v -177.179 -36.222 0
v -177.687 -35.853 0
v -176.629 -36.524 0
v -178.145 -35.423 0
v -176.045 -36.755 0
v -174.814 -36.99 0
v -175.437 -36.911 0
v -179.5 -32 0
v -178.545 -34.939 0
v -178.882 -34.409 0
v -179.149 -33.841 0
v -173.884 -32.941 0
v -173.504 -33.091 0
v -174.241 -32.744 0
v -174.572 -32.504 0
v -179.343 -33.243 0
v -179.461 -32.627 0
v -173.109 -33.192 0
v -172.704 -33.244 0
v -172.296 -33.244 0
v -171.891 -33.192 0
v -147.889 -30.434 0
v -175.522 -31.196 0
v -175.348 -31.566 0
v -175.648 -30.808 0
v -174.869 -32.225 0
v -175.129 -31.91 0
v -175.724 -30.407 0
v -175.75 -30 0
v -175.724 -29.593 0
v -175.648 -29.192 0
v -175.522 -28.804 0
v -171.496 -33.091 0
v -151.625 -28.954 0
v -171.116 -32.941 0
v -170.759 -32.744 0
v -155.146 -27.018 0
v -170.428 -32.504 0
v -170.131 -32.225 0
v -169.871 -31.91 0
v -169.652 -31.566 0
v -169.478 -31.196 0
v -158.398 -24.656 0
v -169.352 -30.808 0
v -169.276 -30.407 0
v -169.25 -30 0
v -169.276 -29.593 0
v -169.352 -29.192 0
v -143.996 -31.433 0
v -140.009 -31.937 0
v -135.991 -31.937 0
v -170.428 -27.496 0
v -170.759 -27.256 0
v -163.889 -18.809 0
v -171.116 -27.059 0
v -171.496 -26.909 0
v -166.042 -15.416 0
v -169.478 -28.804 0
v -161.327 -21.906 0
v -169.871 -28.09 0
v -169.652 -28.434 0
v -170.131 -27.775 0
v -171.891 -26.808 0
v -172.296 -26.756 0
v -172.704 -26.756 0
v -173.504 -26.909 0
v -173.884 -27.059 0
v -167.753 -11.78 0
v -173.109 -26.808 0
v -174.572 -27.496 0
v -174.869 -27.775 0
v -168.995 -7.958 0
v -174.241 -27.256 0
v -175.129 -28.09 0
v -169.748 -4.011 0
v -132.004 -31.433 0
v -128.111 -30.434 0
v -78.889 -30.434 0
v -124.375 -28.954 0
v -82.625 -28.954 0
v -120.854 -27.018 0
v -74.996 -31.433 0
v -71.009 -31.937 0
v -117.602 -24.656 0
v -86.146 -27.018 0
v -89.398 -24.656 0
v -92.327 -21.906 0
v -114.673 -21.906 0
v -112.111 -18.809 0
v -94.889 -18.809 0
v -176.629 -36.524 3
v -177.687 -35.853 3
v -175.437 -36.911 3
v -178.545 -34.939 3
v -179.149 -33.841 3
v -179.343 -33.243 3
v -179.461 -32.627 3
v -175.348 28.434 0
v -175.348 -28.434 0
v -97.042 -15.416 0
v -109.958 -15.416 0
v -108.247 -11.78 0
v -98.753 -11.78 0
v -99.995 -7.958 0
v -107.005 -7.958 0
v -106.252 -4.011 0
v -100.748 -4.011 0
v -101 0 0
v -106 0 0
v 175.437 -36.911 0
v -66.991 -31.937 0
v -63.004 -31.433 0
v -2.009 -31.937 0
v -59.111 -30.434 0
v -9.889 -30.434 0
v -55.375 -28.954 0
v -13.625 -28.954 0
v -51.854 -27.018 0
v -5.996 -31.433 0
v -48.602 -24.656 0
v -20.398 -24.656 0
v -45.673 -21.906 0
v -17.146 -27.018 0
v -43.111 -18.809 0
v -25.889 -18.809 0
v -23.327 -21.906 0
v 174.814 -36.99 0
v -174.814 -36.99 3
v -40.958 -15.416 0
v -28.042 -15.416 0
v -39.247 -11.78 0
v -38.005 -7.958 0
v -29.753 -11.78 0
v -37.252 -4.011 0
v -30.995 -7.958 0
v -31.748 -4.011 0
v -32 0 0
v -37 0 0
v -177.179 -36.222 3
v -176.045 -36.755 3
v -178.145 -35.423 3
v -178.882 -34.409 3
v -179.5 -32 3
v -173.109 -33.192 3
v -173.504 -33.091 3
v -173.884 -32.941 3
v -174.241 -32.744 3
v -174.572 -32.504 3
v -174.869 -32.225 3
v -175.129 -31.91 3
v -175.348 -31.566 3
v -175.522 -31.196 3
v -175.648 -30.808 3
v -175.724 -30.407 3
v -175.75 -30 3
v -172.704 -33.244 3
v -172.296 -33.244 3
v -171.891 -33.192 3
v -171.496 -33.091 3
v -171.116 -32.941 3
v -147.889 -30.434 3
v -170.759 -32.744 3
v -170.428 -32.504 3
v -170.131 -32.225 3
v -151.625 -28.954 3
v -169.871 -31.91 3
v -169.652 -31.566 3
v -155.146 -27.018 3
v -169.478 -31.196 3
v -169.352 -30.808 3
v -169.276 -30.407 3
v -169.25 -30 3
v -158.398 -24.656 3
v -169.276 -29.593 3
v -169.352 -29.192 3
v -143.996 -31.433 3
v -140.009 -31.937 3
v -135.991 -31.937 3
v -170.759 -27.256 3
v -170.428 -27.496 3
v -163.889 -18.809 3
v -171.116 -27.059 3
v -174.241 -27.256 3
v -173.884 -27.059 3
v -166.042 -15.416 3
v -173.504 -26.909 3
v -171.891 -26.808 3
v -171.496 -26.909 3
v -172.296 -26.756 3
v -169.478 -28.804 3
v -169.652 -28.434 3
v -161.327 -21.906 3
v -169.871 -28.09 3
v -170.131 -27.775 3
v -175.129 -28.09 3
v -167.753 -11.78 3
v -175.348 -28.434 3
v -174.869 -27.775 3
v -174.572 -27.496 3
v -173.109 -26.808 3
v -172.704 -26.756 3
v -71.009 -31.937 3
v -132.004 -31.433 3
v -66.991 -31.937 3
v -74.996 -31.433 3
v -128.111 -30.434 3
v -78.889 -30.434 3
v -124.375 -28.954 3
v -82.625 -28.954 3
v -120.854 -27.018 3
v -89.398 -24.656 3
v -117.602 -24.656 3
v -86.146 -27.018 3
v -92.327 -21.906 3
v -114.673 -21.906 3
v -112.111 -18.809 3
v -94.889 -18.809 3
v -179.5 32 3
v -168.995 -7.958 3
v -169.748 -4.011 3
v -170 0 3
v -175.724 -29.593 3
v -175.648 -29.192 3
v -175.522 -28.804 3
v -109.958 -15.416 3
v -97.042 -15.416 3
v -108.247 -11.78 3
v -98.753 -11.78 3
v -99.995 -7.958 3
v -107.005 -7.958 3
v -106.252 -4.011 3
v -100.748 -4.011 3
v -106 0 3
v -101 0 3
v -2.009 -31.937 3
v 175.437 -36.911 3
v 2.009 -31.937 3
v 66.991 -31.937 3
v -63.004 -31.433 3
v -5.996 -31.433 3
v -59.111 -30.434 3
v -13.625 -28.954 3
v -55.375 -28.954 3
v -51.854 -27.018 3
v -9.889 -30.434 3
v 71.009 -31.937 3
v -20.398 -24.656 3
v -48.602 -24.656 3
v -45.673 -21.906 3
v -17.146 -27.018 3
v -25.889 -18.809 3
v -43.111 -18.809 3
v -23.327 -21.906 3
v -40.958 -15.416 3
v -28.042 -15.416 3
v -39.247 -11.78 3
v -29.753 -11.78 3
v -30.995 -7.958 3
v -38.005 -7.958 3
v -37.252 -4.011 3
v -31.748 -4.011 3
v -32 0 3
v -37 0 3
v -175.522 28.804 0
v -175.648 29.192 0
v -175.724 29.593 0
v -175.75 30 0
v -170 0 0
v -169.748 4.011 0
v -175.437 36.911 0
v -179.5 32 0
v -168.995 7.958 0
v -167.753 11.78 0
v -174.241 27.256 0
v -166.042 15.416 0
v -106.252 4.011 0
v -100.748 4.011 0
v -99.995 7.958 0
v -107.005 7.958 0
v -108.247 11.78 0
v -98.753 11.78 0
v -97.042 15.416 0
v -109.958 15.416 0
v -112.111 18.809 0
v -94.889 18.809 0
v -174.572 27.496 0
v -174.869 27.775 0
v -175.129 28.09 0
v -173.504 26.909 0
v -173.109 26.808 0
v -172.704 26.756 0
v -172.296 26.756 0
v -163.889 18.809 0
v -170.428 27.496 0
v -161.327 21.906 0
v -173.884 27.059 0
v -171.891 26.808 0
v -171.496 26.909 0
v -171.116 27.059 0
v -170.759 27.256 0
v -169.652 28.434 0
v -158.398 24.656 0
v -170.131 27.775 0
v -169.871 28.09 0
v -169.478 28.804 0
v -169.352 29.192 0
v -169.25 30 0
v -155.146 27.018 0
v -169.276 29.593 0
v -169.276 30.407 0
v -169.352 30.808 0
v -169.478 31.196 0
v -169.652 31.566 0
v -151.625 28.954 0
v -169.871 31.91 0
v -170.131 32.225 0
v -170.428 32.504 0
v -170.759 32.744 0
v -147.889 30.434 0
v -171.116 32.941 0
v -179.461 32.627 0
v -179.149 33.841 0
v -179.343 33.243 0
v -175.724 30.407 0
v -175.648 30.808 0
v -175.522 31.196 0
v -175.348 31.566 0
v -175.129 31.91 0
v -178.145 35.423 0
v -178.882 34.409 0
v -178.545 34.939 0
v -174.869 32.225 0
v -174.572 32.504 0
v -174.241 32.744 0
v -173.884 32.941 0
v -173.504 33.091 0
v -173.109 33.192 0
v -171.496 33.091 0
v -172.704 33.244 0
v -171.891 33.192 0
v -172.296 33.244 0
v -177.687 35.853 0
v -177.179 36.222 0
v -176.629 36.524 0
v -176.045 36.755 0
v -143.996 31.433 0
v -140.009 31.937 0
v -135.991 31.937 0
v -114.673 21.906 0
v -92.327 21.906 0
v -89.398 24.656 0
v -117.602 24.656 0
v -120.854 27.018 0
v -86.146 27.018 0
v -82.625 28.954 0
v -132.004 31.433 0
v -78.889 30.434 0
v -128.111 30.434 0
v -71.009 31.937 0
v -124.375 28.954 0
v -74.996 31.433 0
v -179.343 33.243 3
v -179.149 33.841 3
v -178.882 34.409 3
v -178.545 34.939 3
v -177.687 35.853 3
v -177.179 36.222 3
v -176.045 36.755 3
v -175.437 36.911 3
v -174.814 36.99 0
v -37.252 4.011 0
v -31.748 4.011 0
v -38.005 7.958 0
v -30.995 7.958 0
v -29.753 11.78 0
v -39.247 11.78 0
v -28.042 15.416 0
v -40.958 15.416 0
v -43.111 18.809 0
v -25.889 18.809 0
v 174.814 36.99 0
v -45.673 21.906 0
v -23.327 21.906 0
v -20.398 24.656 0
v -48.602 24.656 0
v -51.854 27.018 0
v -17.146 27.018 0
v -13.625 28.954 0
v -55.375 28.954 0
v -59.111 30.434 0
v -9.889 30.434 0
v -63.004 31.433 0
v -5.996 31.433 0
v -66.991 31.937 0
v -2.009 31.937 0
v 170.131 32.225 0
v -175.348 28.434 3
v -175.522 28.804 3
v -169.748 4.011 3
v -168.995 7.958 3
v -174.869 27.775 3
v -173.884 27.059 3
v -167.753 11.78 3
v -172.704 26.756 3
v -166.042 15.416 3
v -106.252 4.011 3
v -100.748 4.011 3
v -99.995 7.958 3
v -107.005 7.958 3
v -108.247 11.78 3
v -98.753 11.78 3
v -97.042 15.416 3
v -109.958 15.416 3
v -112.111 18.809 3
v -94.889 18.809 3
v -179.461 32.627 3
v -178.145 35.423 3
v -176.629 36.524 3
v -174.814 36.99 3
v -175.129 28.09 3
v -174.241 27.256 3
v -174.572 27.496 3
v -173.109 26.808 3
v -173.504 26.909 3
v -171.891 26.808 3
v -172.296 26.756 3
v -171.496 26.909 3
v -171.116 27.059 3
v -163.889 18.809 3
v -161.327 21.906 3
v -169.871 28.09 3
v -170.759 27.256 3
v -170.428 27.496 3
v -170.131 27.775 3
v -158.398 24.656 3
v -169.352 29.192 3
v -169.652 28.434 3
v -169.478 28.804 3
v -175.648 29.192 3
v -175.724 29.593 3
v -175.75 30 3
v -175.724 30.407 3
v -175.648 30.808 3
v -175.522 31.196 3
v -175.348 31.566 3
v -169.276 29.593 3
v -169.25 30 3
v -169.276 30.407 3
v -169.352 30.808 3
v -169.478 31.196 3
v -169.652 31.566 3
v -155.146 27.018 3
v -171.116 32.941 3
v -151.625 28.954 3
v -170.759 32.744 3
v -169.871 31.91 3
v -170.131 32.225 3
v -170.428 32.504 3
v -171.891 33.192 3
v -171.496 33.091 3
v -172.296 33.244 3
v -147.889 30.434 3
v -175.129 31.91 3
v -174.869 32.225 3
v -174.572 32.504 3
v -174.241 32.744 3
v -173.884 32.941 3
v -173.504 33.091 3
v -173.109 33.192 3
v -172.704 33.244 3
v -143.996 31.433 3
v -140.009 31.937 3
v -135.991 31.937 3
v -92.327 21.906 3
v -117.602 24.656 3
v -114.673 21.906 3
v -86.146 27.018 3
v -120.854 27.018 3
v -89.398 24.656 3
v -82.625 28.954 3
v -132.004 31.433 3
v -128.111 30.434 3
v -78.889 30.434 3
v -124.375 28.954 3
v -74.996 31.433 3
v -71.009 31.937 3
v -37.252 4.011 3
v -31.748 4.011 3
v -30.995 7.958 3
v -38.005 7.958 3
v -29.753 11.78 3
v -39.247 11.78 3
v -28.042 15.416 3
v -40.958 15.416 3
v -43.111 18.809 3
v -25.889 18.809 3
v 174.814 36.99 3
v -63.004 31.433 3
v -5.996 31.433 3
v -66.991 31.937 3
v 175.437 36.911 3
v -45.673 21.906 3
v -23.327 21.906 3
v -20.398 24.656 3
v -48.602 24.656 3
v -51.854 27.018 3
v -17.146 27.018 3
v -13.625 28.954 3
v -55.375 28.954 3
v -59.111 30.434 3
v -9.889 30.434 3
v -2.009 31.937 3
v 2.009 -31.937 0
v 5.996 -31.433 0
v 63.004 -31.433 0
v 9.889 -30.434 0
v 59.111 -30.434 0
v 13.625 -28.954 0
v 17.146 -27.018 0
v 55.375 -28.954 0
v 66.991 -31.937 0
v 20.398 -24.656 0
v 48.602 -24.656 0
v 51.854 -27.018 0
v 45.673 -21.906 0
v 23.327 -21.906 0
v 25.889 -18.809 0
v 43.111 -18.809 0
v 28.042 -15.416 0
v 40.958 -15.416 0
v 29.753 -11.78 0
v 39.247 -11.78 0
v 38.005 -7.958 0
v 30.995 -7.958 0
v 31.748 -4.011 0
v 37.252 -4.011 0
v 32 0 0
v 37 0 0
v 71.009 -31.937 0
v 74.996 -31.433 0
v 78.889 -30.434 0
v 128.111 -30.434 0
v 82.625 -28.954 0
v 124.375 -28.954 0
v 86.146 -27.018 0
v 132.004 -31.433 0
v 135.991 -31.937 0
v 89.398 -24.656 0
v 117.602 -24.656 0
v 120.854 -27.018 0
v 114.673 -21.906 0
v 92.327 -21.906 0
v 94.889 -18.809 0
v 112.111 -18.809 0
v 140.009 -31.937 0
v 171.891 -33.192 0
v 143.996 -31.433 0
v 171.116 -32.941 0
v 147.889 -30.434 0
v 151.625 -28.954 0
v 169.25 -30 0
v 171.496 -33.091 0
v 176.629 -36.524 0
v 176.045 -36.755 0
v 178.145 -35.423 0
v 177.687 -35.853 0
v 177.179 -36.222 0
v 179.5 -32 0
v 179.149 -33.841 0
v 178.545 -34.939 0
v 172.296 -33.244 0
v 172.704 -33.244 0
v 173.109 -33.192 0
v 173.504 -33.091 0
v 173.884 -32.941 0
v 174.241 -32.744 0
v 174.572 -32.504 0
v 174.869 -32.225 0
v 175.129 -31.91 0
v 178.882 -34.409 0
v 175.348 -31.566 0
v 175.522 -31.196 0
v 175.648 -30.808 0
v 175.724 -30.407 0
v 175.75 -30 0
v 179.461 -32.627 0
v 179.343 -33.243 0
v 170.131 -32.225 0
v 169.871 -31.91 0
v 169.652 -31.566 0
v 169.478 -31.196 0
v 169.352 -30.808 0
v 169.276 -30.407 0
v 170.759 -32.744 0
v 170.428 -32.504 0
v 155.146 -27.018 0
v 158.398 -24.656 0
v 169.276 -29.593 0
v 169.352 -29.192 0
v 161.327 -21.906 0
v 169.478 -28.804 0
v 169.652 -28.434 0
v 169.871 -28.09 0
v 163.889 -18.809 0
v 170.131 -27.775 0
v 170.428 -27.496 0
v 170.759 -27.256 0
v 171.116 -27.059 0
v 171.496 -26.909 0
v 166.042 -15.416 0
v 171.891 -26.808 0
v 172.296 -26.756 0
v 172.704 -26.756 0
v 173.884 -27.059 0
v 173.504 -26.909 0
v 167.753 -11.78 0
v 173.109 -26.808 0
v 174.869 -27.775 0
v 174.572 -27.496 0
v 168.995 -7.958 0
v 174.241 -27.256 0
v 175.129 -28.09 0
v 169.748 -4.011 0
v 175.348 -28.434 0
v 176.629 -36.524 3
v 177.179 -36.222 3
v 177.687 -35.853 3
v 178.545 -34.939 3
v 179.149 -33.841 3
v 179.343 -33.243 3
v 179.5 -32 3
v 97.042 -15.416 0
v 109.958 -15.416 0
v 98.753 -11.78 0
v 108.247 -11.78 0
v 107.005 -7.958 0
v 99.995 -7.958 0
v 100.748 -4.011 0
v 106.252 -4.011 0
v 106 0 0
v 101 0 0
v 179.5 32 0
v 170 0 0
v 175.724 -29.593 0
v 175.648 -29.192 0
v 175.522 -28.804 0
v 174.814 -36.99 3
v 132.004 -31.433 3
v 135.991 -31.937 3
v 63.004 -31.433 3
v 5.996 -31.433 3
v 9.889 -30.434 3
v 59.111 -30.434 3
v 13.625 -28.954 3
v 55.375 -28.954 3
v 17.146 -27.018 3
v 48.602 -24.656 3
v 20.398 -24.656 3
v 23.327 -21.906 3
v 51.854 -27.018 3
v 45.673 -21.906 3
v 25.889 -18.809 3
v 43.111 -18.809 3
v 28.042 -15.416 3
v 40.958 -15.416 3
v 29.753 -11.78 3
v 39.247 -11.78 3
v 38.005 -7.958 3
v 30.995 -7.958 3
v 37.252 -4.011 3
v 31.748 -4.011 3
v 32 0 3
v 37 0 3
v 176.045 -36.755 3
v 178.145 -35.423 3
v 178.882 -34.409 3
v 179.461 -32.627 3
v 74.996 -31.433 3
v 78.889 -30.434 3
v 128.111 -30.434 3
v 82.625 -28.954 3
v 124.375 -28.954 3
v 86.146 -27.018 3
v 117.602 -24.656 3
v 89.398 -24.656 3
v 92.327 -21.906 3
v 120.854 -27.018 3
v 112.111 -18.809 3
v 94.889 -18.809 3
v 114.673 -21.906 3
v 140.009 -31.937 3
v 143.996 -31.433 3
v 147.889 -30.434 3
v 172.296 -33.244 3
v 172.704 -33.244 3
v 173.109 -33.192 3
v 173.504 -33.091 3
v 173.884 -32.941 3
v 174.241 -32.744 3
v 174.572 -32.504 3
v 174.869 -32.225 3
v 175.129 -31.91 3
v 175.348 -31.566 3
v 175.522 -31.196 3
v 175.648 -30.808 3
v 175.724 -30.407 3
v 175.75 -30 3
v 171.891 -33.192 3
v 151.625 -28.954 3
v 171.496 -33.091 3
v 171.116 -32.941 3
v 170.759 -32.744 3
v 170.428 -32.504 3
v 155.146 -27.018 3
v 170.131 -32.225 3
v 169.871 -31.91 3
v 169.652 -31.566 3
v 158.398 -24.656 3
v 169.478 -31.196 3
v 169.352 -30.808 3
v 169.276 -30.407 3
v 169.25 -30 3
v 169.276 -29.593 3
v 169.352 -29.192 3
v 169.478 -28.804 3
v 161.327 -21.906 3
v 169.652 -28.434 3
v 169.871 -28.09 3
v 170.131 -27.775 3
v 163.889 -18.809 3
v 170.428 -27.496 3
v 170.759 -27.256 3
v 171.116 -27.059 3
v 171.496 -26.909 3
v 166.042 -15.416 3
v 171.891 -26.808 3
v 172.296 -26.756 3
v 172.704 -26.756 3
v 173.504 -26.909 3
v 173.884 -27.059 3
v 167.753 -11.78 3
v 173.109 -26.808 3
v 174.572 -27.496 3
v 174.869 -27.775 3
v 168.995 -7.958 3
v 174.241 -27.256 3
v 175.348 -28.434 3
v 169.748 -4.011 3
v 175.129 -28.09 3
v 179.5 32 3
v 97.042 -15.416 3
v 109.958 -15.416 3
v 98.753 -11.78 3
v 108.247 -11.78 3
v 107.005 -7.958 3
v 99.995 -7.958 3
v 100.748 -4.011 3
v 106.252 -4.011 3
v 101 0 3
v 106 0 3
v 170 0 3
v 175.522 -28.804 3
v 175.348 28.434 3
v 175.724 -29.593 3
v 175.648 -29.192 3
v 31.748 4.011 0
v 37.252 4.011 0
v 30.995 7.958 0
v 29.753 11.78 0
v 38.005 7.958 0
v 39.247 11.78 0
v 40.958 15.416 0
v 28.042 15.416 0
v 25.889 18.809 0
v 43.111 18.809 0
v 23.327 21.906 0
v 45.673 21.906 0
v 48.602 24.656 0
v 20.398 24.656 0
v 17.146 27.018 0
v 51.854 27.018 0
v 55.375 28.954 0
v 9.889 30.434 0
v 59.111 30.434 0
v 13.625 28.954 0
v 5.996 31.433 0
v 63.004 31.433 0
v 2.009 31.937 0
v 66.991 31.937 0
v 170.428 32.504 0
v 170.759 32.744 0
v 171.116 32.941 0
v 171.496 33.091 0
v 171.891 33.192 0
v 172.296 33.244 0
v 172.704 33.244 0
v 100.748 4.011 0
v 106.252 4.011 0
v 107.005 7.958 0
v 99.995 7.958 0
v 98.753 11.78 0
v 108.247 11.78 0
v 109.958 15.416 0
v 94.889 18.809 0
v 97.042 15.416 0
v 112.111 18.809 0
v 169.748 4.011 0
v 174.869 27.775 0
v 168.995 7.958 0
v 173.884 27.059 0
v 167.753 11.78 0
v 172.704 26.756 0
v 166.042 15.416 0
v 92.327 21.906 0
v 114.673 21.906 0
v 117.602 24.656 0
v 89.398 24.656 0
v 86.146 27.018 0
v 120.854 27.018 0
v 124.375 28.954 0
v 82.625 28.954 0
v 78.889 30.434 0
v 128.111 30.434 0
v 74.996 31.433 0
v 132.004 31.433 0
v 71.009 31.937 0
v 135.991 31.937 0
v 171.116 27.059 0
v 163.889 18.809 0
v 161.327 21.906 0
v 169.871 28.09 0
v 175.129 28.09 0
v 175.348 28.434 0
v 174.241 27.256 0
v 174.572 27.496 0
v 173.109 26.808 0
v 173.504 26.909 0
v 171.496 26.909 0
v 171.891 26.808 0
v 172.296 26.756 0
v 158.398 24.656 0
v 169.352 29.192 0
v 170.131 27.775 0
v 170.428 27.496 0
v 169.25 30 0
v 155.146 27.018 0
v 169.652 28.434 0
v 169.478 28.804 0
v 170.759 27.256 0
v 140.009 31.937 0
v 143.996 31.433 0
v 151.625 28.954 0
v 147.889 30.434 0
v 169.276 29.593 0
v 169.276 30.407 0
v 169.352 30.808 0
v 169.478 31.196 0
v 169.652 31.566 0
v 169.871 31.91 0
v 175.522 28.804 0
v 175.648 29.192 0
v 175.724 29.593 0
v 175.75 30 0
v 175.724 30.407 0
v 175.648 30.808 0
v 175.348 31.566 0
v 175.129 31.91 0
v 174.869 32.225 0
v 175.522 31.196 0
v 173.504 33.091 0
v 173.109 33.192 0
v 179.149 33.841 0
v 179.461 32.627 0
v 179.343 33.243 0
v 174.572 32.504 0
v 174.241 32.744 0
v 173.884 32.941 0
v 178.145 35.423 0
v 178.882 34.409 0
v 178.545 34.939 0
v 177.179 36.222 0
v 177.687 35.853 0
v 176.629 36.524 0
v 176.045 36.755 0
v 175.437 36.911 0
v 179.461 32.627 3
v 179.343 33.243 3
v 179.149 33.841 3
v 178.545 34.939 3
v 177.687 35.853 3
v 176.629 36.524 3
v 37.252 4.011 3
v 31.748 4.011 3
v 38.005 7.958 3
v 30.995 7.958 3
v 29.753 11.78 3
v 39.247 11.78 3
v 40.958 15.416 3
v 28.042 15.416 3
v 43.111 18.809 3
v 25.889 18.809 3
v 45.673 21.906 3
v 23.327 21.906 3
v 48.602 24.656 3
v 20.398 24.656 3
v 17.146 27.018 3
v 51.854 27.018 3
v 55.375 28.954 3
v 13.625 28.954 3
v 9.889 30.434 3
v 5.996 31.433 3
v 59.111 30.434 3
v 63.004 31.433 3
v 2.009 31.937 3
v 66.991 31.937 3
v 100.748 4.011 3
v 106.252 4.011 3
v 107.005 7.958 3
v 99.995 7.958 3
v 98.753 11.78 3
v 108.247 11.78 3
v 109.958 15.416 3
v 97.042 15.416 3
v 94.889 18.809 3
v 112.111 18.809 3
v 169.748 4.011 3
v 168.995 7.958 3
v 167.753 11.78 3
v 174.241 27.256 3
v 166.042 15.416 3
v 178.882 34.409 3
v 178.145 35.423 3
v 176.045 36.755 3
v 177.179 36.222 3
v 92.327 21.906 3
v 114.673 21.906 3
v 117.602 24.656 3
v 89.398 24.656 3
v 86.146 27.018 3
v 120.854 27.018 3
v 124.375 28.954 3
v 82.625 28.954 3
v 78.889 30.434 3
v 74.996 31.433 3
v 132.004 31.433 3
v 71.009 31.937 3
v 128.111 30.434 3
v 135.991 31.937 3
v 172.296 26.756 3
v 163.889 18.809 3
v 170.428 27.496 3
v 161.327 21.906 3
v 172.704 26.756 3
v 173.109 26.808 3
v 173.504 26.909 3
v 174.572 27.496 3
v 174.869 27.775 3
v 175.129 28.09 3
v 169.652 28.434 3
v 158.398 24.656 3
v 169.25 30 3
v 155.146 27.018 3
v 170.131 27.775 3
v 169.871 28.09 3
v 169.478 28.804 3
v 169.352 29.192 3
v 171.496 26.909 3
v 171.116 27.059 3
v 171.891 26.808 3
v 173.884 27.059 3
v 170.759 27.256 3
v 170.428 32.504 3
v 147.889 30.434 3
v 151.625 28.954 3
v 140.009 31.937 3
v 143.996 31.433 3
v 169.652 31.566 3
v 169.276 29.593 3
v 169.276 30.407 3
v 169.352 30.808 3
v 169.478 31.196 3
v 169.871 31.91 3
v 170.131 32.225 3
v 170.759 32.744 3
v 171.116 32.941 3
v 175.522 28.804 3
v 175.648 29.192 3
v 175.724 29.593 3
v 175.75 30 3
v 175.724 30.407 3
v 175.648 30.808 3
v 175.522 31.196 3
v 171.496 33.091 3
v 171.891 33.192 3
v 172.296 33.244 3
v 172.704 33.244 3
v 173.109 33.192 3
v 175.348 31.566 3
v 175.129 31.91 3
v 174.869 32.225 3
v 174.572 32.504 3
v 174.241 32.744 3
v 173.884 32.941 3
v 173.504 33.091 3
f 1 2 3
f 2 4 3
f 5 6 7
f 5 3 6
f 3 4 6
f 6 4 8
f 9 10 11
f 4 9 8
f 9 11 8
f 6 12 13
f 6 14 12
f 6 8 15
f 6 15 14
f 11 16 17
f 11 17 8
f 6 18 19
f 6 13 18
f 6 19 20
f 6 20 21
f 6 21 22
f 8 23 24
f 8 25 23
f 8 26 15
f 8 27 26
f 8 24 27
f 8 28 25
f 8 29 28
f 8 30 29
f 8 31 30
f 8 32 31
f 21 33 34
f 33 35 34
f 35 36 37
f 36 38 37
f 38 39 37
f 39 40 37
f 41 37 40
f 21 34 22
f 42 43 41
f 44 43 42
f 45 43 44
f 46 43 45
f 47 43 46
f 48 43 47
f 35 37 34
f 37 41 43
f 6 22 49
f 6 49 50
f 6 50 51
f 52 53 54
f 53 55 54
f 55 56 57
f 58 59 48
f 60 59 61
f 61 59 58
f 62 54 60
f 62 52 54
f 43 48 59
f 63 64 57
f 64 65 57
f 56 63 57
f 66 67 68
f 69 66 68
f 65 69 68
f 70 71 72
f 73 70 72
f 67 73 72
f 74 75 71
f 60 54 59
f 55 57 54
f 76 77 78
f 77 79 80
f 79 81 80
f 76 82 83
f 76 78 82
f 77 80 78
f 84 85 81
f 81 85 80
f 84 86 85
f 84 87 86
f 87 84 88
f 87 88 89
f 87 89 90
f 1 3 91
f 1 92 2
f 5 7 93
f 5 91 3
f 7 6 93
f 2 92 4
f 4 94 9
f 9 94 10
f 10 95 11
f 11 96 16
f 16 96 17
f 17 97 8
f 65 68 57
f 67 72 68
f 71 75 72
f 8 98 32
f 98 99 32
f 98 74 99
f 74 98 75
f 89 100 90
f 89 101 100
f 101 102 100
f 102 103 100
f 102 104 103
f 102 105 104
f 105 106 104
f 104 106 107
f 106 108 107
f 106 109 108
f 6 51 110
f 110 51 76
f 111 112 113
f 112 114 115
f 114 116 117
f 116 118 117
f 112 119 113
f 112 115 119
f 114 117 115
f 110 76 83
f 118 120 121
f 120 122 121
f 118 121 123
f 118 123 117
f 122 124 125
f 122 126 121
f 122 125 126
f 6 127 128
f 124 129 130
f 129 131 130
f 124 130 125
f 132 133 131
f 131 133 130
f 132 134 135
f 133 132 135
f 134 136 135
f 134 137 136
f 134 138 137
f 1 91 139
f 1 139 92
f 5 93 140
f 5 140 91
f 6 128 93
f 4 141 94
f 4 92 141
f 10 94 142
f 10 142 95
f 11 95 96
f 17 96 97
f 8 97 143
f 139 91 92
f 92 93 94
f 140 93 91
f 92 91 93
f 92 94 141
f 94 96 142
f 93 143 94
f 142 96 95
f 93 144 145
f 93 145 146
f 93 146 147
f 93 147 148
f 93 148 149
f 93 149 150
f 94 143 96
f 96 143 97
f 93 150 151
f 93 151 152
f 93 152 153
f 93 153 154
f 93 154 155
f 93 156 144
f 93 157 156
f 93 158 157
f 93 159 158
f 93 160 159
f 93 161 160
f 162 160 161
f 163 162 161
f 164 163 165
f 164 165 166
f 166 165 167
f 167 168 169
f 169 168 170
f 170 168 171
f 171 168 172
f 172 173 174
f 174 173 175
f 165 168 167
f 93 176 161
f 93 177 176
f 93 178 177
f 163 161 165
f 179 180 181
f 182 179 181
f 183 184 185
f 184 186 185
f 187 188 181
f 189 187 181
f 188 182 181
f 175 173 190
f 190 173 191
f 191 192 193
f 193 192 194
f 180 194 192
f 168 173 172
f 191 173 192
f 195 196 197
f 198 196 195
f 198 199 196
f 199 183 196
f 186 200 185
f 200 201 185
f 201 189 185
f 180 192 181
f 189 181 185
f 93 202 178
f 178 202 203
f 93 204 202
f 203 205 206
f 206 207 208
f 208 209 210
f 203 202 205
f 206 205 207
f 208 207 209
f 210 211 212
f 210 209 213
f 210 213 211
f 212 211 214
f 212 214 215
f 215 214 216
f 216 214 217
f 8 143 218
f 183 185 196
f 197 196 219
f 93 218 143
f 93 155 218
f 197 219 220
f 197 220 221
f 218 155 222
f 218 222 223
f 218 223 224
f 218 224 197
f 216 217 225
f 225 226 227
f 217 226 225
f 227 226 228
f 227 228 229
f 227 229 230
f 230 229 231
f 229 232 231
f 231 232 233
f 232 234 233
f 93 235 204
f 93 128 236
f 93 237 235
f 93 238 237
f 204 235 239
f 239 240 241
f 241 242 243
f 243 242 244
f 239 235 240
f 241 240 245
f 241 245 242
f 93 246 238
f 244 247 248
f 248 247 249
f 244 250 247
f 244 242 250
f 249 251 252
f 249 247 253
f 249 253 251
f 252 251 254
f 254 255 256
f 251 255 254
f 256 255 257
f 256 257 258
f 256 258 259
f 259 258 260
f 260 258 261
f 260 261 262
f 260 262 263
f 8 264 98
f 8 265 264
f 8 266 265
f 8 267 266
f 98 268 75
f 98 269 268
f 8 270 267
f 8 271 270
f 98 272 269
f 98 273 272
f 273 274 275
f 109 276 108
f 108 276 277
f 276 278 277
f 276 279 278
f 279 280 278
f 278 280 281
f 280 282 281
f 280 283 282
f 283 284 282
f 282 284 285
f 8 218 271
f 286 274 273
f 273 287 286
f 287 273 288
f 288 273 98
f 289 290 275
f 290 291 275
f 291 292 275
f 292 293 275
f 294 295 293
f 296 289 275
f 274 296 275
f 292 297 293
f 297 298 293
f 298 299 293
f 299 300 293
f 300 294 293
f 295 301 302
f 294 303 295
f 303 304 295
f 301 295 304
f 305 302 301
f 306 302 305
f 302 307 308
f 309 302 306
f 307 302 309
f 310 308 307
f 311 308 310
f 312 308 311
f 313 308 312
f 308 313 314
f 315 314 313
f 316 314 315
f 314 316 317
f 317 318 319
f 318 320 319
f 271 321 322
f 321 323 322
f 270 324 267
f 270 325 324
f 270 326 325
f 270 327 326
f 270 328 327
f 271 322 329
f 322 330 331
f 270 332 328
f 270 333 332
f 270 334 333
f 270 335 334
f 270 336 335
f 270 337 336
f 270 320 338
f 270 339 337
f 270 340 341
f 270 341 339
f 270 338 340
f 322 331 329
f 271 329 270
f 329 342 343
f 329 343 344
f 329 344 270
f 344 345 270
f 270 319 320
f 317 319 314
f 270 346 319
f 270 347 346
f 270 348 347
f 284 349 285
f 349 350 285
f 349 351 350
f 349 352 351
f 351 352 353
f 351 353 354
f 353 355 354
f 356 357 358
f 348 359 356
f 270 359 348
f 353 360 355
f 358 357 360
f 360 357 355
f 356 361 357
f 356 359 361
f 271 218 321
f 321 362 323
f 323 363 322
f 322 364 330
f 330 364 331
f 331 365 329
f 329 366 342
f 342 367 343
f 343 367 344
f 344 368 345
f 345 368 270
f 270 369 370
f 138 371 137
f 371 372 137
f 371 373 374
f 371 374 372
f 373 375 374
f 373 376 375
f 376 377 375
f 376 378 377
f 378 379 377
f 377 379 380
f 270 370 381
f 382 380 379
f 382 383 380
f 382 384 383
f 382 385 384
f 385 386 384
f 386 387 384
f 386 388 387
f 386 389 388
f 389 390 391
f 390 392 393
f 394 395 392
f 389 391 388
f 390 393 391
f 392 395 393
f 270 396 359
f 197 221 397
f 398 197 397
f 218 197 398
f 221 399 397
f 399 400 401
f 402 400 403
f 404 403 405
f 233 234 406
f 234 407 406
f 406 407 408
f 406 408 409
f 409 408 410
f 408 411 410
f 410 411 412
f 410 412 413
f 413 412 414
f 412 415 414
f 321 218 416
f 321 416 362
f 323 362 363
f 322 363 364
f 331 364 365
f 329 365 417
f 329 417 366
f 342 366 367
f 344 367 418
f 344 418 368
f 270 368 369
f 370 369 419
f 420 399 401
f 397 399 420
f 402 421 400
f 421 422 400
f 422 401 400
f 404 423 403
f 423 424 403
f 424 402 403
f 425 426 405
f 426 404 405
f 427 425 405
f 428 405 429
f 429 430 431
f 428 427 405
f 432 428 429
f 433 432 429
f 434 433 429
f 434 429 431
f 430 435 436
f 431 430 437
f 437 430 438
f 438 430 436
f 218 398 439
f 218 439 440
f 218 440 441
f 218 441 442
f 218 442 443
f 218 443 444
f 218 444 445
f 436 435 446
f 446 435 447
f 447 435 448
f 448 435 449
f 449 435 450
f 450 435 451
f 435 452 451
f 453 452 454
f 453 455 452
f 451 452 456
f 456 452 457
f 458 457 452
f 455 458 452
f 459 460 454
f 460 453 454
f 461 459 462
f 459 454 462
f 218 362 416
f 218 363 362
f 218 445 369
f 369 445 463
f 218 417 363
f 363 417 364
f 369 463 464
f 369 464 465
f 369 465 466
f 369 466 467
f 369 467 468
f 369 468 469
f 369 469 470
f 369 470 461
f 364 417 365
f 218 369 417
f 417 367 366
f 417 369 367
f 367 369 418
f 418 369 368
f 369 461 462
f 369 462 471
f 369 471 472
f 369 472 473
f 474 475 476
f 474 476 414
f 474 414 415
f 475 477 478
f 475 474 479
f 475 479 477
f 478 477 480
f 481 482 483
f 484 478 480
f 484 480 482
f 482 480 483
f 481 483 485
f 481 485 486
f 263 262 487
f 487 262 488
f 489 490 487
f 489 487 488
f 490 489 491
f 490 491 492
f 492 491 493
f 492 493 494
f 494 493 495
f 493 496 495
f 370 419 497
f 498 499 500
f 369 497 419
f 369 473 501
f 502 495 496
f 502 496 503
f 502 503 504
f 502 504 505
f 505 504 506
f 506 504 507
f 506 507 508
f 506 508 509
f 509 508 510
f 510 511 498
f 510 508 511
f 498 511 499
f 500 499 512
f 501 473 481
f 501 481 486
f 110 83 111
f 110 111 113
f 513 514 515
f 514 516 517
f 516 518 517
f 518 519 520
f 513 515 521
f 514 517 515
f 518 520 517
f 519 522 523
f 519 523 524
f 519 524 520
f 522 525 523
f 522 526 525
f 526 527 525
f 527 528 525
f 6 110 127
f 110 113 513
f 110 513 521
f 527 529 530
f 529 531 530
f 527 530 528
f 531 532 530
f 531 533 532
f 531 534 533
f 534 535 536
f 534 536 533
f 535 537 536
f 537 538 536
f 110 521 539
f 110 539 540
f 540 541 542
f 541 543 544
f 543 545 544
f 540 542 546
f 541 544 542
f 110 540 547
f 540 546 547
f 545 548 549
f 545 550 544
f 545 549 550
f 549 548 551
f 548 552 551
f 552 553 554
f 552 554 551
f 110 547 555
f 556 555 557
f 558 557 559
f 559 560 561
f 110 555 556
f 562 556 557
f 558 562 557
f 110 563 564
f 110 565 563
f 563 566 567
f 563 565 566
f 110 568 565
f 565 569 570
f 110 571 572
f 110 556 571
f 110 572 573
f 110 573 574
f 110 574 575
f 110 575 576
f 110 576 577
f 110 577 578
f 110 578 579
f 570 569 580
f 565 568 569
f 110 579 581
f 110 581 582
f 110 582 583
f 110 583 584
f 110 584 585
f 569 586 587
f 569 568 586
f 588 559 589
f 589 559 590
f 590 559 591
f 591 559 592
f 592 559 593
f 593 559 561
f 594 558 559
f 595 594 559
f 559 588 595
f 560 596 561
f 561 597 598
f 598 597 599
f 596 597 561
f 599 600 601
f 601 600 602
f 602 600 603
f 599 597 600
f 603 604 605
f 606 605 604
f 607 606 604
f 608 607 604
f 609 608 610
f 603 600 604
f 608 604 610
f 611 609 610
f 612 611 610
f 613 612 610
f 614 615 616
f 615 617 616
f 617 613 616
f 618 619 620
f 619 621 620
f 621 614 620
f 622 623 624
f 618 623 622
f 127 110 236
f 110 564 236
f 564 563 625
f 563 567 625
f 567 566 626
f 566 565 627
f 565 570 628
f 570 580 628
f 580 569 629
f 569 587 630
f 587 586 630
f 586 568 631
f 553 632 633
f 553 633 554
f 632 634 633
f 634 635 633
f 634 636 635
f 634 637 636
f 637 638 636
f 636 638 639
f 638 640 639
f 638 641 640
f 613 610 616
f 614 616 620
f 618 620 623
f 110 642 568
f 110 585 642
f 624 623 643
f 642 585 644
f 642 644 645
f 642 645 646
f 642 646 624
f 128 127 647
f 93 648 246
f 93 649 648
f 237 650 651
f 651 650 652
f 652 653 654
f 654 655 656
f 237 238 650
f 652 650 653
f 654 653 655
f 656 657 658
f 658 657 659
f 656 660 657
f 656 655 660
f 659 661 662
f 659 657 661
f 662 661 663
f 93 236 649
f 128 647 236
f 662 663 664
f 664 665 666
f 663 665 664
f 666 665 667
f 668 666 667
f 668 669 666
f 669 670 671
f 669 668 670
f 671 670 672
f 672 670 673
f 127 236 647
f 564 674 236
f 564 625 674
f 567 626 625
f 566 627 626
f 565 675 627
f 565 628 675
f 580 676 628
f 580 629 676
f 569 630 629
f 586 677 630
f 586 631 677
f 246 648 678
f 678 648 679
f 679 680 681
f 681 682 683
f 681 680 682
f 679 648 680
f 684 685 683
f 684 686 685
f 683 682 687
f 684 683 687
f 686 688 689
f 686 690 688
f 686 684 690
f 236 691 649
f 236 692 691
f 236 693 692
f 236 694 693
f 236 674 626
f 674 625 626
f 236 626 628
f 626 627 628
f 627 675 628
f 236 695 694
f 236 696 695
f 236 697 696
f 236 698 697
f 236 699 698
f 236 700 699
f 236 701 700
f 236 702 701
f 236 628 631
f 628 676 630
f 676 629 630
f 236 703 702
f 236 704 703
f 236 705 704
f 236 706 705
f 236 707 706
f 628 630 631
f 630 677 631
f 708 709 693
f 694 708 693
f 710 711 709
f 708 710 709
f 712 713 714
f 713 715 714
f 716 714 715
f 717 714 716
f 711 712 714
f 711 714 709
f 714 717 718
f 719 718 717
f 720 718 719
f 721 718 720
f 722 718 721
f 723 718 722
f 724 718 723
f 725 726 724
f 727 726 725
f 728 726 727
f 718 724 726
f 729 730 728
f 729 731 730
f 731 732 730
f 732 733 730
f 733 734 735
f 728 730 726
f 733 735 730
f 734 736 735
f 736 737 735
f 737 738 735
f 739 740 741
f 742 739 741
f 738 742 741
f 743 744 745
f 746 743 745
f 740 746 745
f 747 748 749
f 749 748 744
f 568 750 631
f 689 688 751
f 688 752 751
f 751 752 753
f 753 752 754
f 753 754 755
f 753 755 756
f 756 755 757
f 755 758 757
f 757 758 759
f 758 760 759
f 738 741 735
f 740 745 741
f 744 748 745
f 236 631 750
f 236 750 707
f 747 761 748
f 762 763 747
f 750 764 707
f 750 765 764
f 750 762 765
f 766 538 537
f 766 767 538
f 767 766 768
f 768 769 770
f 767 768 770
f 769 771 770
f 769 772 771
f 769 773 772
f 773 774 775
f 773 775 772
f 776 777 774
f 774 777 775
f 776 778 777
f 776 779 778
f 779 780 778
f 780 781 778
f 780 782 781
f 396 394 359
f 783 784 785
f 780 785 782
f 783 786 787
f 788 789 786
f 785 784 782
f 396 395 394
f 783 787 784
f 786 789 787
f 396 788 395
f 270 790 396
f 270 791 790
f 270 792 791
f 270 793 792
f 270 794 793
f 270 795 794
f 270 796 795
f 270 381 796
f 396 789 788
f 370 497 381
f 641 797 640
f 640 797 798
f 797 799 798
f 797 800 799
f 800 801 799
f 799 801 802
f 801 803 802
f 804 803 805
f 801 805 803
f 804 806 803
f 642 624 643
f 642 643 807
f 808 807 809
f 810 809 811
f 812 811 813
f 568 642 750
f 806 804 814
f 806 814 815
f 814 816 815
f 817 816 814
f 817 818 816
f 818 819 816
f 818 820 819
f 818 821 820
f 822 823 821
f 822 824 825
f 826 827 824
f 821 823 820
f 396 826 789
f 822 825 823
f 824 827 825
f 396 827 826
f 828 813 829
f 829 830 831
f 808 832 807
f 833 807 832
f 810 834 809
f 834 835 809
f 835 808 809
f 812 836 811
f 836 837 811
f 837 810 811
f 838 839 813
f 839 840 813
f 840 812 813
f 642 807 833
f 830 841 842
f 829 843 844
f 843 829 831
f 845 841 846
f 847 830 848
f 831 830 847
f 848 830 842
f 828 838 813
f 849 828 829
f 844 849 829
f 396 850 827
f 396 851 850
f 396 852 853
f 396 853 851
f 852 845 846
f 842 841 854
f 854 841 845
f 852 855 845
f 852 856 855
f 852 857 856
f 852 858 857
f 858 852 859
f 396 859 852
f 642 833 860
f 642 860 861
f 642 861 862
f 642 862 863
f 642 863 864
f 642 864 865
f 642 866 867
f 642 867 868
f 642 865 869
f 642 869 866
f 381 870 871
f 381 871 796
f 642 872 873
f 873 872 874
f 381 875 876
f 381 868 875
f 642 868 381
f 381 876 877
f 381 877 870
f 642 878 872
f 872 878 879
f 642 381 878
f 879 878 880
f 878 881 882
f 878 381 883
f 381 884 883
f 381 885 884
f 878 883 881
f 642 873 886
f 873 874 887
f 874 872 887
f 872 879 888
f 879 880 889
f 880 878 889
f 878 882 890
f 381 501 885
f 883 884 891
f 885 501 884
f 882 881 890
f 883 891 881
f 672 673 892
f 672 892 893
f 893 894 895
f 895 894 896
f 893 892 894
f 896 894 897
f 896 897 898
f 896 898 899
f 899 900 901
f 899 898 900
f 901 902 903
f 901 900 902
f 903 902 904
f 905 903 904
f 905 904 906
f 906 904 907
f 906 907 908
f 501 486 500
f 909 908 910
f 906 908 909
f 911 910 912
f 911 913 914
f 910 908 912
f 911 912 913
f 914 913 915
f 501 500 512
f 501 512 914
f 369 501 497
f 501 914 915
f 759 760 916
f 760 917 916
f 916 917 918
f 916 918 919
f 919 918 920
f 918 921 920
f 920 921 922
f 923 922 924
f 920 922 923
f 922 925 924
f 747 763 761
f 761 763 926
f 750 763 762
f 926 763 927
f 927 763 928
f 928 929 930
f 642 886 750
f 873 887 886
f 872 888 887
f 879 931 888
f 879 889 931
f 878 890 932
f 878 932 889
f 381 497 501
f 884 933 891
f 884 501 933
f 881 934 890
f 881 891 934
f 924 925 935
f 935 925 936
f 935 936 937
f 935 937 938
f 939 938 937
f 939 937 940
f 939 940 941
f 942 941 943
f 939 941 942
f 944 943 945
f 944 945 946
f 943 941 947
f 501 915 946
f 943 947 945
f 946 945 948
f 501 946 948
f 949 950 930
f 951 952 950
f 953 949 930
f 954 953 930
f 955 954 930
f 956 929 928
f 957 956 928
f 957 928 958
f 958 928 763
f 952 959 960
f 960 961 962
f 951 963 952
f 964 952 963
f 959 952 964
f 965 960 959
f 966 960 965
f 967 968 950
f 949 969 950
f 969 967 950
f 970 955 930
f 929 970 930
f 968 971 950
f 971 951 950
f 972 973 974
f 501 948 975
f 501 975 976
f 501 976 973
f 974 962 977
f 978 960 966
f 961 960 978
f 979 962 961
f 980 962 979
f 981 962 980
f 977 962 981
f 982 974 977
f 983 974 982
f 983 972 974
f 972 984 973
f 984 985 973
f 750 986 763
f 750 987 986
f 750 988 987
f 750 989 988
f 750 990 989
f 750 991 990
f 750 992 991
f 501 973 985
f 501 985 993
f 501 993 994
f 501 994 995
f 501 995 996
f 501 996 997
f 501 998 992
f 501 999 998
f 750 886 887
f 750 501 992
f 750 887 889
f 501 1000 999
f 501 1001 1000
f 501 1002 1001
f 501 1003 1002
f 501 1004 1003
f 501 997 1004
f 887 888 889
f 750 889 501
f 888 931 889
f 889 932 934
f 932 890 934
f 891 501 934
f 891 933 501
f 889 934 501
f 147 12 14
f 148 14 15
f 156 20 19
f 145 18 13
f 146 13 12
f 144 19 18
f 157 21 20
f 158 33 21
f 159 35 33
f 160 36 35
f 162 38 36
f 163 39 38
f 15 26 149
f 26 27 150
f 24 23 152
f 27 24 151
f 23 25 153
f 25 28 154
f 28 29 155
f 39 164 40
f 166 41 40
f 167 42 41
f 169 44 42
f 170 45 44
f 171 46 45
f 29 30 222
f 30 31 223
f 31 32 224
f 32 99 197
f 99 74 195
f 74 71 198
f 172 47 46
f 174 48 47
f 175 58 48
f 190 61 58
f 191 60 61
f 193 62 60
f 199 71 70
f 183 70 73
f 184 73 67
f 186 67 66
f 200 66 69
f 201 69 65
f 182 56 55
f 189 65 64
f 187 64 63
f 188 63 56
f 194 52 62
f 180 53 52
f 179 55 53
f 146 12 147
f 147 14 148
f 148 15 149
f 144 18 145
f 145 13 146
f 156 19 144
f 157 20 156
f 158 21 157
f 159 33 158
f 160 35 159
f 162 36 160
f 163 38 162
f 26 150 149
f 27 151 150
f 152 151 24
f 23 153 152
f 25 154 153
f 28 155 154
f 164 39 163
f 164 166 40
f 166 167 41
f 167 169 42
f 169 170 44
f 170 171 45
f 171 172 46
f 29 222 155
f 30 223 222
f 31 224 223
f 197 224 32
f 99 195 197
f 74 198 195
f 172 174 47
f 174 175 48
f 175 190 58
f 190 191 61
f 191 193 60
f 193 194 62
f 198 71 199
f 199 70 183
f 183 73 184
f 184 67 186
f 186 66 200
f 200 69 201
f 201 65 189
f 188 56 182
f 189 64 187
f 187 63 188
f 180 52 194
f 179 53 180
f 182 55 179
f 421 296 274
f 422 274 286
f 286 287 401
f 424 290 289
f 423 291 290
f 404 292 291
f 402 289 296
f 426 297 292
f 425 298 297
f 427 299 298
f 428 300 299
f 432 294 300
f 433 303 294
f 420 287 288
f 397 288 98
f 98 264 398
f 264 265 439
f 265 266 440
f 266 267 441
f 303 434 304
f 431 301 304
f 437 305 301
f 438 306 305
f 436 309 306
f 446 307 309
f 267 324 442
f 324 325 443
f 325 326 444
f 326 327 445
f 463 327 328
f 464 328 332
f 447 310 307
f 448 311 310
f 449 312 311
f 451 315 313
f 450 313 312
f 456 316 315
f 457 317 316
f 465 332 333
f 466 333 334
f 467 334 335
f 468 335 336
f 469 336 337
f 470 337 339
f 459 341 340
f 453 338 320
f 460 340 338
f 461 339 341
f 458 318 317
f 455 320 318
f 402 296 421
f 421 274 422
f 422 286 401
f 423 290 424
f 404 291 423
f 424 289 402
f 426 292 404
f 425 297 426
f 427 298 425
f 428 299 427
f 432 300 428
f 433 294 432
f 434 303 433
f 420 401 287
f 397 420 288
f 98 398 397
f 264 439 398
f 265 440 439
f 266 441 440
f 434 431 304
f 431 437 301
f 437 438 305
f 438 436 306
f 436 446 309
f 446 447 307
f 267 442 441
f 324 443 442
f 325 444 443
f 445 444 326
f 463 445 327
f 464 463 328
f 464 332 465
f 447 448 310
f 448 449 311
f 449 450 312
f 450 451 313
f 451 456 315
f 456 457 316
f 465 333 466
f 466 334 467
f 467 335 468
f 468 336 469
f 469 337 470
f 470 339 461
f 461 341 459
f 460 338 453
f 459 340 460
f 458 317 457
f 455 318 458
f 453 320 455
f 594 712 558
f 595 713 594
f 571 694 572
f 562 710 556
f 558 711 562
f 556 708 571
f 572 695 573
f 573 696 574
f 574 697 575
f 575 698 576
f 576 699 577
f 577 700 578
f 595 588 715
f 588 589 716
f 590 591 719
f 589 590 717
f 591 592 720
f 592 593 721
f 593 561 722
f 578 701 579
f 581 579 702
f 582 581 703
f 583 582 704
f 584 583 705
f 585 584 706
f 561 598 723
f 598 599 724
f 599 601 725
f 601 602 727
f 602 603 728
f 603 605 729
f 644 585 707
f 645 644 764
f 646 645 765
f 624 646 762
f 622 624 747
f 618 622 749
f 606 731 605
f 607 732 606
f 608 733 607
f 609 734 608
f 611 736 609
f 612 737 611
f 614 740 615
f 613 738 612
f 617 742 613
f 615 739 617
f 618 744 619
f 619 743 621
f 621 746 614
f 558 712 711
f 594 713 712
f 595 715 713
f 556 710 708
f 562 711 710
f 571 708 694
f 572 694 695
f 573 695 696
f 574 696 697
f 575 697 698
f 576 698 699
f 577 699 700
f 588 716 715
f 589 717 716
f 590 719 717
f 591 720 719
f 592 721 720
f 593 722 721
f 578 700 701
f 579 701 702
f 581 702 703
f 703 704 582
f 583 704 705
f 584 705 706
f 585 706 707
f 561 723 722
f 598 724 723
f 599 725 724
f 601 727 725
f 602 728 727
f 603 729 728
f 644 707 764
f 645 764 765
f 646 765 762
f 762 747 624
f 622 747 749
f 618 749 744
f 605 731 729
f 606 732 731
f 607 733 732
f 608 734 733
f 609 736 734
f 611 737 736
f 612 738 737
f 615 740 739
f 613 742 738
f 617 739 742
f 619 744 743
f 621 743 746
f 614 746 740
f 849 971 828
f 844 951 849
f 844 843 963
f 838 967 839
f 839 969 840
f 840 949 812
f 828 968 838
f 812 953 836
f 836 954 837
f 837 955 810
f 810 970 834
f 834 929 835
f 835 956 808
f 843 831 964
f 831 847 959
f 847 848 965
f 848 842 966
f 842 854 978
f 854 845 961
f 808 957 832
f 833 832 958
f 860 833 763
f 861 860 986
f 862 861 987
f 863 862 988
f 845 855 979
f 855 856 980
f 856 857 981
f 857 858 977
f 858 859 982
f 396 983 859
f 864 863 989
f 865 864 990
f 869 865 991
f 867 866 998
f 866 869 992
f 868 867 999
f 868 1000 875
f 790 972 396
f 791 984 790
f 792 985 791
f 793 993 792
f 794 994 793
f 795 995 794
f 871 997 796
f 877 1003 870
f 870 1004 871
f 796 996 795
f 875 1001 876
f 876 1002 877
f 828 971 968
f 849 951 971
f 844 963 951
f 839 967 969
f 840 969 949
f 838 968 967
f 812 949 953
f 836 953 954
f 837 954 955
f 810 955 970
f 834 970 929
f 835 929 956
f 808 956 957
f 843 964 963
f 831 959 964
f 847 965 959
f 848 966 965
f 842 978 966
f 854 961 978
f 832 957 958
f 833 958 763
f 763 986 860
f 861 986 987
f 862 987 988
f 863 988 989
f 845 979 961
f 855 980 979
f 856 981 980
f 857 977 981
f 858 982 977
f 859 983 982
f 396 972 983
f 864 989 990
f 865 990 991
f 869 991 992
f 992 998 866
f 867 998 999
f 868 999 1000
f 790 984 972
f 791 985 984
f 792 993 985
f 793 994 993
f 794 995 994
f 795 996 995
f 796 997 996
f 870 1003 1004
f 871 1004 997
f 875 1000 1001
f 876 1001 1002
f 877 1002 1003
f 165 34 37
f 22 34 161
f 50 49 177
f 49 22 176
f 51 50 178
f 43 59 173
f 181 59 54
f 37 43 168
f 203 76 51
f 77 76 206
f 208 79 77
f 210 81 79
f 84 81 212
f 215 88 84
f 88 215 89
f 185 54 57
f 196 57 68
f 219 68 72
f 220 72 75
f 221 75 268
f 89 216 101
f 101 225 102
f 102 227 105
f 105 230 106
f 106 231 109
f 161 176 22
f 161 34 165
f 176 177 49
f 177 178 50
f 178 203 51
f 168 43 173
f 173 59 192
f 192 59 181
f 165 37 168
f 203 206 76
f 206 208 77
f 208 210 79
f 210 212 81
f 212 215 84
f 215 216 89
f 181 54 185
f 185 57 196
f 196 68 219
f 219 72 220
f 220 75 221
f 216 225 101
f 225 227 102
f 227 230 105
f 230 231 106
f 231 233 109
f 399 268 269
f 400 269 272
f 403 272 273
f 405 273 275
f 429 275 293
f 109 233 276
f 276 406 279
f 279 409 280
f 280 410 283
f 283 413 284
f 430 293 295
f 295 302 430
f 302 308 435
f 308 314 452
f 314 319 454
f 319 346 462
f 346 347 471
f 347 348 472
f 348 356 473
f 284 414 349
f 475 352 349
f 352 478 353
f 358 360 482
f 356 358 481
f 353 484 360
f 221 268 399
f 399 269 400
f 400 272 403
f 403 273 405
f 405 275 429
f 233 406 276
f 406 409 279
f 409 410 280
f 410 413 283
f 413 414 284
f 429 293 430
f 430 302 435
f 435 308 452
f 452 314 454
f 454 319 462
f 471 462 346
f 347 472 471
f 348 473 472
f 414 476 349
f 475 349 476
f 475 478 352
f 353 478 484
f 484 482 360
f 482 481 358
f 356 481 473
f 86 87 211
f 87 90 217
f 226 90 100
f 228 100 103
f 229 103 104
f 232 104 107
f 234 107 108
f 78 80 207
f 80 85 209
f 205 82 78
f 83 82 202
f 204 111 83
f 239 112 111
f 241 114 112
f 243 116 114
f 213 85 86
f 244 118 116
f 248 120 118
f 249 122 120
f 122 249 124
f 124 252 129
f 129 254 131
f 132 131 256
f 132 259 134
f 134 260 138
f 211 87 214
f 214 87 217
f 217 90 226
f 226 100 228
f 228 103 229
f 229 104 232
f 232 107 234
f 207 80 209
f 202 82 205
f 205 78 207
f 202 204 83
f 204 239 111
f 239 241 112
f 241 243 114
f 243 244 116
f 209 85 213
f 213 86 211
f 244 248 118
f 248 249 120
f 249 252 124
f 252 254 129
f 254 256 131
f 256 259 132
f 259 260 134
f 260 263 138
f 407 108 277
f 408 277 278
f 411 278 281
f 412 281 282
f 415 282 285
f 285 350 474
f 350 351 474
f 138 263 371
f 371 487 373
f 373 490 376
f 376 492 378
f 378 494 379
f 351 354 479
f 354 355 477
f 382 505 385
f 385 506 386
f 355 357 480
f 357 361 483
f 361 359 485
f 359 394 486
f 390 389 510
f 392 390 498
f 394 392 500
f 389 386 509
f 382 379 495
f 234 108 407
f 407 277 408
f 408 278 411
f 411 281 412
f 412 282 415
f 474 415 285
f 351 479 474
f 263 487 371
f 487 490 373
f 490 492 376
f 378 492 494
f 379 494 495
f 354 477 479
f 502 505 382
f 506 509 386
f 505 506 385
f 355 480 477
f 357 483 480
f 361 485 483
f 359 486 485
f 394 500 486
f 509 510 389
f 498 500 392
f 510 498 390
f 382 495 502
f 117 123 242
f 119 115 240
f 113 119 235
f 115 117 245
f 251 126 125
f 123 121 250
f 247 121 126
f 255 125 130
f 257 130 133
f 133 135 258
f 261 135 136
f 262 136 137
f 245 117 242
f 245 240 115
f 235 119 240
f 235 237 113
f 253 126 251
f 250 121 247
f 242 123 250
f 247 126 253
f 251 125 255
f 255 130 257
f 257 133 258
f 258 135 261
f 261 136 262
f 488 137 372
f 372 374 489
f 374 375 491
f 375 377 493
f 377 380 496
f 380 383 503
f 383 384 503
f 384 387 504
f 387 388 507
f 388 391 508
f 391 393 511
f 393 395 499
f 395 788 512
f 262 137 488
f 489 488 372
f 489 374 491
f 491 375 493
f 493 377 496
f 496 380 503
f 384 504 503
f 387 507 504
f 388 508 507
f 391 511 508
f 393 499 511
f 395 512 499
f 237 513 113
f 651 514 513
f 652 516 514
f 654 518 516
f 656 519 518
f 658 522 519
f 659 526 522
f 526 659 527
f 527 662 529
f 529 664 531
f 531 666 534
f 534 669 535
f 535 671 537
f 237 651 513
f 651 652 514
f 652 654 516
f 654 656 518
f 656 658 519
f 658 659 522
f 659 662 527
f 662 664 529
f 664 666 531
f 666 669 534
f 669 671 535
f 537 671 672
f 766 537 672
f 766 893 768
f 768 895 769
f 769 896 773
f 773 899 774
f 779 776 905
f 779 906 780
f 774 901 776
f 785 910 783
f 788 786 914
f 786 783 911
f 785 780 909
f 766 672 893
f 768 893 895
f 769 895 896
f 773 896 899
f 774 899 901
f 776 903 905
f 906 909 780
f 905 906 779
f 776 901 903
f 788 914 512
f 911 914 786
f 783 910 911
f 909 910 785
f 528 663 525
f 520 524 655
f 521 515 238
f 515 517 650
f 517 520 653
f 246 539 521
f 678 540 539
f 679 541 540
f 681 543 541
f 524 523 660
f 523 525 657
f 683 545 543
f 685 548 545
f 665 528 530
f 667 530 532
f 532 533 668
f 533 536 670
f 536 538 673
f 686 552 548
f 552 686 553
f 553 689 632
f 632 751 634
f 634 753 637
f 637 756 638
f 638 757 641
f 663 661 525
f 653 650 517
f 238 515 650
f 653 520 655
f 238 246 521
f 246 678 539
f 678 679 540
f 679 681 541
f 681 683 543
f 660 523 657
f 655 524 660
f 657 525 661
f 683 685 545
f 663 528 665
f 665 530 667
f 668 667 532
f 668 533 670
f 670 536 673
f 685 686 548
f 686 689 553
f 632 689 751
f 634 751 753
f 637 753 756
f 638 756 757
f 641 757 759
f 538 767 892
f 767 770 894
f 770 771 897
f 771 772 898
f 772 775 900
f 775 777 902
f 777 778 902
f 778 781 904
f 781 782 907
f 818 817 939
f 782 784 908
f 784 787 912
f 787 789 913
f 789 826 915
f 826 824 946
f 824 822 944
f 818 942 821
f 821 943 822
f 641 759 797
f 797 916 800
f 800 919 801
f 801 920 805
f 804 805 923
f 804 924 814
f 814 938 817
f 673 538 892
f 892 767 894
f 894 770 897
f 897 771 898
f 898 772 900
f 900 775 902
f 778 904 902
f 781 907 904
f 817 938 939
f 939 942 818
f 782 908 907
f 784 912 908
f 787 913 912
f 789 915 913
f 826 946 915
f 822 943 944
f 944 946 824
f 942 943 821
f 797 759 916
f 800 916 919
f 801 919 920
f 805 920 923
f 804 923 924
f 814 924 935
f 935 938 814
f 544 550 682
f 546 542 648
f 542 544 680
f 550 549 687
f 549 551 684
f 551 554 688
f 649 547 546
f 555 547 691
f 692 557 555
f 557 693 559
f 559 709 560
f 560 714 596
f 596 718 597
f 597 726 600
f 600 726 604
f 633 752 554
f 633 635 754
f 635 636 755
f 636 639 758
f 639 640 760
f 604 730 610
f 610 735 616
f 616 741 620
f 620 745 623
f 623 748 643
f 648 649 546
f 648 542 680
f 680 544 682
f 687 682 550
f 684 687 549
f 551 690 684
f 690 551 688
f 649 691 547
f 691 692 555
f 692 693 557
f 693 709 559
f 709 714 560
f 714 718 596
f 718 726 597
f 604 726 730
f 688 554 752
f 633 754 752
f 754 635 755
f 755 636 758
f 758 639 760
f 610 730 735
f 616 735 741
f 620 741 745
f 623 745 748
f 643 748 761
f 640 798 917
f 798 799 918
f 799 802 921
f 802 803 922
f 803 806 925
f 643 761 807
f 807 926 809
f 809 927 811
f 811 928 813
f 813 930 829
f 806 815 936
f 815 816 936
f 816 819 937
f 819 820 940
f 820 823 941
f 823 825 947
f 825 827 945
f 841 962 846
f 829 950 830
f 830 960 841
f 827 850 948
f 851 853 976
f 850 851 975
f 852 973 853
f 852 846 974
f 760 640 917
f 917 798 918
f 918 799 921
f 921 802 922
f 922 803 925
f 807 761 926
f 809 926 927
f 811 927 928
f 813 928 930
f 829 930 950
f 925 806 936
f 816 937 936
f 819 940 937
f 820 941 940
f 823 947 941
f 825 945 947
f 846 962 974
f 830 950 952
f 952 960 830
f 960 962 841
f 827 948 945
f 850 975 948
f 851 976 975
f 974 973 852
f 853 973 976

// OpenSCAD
$fn = 50;

difference() {
	union() {
		hull() {
			translate(v = [-174.5, 32.0, 0]) {
				cylinder(h = 3, r = 5);
			}
			translate(v = [174.5, 32.0, 0]) {
				cylinder(h = 3, r = 5);
			}
			translate(v = [-174.5, -32.0, 0]) {
				cylinder(h = 3, r = 5);
			}
			translate(v = [174.5, -32.0, 0]) {
				cylinder(h = 3, r = 5);
			}
		}
	}
	union() {
		translate(v = [-172.5, -30.0, -100.0]) {
			cylinder(h = 200, r = 3.25);
		}
		translate(v = [-172.5, 30.0, -100.0]) {
			cylinder(h = 200, r = 3.25);
		}
		translate(v = [172.5, -30.0, -100.0]) {
			cylinder(h = 200, r = 3.25);
		}
		translate(v = [172.5, 30.0, -100.0]) {
			cylinder(h = 200, r = 3.25);
		}
		translate(v = [-172.5, -30.0, -100.0]) {
			cylinder(h = 200, r = 1.8);
		}
		translate(v = [-172.5, 30.0, -100.0]) {
			cylinder(h = 200, r = 1.8);
		}
		translate(v = [172.5, -30.0, -100.0]) {
			cylinder(h = 200, r = 1.8);
		}
		translate(v = [172.5, 30.0, -100.0]) {
			cylinder(h = 200, r = 1.8);
		}
		translate(v = [-138.0, 0, 0.0]) {
			cylinder(h = 3, r = 32.0);
		}
		translate(v = [-69.0, 0, 0.0]) {
			cylinder(h = 3, r = 32.0);
		}
		cylinder(h = 3, r = 32.0);
		translate(v = [69.0, 0, 0.0]) {
			cylinder(h = 3, r = 32.0);
		}
		translate(v = [138.0, 0, 0.0]) {
			cylinder(h = 3, r = 32.0);
		}
	}
}
